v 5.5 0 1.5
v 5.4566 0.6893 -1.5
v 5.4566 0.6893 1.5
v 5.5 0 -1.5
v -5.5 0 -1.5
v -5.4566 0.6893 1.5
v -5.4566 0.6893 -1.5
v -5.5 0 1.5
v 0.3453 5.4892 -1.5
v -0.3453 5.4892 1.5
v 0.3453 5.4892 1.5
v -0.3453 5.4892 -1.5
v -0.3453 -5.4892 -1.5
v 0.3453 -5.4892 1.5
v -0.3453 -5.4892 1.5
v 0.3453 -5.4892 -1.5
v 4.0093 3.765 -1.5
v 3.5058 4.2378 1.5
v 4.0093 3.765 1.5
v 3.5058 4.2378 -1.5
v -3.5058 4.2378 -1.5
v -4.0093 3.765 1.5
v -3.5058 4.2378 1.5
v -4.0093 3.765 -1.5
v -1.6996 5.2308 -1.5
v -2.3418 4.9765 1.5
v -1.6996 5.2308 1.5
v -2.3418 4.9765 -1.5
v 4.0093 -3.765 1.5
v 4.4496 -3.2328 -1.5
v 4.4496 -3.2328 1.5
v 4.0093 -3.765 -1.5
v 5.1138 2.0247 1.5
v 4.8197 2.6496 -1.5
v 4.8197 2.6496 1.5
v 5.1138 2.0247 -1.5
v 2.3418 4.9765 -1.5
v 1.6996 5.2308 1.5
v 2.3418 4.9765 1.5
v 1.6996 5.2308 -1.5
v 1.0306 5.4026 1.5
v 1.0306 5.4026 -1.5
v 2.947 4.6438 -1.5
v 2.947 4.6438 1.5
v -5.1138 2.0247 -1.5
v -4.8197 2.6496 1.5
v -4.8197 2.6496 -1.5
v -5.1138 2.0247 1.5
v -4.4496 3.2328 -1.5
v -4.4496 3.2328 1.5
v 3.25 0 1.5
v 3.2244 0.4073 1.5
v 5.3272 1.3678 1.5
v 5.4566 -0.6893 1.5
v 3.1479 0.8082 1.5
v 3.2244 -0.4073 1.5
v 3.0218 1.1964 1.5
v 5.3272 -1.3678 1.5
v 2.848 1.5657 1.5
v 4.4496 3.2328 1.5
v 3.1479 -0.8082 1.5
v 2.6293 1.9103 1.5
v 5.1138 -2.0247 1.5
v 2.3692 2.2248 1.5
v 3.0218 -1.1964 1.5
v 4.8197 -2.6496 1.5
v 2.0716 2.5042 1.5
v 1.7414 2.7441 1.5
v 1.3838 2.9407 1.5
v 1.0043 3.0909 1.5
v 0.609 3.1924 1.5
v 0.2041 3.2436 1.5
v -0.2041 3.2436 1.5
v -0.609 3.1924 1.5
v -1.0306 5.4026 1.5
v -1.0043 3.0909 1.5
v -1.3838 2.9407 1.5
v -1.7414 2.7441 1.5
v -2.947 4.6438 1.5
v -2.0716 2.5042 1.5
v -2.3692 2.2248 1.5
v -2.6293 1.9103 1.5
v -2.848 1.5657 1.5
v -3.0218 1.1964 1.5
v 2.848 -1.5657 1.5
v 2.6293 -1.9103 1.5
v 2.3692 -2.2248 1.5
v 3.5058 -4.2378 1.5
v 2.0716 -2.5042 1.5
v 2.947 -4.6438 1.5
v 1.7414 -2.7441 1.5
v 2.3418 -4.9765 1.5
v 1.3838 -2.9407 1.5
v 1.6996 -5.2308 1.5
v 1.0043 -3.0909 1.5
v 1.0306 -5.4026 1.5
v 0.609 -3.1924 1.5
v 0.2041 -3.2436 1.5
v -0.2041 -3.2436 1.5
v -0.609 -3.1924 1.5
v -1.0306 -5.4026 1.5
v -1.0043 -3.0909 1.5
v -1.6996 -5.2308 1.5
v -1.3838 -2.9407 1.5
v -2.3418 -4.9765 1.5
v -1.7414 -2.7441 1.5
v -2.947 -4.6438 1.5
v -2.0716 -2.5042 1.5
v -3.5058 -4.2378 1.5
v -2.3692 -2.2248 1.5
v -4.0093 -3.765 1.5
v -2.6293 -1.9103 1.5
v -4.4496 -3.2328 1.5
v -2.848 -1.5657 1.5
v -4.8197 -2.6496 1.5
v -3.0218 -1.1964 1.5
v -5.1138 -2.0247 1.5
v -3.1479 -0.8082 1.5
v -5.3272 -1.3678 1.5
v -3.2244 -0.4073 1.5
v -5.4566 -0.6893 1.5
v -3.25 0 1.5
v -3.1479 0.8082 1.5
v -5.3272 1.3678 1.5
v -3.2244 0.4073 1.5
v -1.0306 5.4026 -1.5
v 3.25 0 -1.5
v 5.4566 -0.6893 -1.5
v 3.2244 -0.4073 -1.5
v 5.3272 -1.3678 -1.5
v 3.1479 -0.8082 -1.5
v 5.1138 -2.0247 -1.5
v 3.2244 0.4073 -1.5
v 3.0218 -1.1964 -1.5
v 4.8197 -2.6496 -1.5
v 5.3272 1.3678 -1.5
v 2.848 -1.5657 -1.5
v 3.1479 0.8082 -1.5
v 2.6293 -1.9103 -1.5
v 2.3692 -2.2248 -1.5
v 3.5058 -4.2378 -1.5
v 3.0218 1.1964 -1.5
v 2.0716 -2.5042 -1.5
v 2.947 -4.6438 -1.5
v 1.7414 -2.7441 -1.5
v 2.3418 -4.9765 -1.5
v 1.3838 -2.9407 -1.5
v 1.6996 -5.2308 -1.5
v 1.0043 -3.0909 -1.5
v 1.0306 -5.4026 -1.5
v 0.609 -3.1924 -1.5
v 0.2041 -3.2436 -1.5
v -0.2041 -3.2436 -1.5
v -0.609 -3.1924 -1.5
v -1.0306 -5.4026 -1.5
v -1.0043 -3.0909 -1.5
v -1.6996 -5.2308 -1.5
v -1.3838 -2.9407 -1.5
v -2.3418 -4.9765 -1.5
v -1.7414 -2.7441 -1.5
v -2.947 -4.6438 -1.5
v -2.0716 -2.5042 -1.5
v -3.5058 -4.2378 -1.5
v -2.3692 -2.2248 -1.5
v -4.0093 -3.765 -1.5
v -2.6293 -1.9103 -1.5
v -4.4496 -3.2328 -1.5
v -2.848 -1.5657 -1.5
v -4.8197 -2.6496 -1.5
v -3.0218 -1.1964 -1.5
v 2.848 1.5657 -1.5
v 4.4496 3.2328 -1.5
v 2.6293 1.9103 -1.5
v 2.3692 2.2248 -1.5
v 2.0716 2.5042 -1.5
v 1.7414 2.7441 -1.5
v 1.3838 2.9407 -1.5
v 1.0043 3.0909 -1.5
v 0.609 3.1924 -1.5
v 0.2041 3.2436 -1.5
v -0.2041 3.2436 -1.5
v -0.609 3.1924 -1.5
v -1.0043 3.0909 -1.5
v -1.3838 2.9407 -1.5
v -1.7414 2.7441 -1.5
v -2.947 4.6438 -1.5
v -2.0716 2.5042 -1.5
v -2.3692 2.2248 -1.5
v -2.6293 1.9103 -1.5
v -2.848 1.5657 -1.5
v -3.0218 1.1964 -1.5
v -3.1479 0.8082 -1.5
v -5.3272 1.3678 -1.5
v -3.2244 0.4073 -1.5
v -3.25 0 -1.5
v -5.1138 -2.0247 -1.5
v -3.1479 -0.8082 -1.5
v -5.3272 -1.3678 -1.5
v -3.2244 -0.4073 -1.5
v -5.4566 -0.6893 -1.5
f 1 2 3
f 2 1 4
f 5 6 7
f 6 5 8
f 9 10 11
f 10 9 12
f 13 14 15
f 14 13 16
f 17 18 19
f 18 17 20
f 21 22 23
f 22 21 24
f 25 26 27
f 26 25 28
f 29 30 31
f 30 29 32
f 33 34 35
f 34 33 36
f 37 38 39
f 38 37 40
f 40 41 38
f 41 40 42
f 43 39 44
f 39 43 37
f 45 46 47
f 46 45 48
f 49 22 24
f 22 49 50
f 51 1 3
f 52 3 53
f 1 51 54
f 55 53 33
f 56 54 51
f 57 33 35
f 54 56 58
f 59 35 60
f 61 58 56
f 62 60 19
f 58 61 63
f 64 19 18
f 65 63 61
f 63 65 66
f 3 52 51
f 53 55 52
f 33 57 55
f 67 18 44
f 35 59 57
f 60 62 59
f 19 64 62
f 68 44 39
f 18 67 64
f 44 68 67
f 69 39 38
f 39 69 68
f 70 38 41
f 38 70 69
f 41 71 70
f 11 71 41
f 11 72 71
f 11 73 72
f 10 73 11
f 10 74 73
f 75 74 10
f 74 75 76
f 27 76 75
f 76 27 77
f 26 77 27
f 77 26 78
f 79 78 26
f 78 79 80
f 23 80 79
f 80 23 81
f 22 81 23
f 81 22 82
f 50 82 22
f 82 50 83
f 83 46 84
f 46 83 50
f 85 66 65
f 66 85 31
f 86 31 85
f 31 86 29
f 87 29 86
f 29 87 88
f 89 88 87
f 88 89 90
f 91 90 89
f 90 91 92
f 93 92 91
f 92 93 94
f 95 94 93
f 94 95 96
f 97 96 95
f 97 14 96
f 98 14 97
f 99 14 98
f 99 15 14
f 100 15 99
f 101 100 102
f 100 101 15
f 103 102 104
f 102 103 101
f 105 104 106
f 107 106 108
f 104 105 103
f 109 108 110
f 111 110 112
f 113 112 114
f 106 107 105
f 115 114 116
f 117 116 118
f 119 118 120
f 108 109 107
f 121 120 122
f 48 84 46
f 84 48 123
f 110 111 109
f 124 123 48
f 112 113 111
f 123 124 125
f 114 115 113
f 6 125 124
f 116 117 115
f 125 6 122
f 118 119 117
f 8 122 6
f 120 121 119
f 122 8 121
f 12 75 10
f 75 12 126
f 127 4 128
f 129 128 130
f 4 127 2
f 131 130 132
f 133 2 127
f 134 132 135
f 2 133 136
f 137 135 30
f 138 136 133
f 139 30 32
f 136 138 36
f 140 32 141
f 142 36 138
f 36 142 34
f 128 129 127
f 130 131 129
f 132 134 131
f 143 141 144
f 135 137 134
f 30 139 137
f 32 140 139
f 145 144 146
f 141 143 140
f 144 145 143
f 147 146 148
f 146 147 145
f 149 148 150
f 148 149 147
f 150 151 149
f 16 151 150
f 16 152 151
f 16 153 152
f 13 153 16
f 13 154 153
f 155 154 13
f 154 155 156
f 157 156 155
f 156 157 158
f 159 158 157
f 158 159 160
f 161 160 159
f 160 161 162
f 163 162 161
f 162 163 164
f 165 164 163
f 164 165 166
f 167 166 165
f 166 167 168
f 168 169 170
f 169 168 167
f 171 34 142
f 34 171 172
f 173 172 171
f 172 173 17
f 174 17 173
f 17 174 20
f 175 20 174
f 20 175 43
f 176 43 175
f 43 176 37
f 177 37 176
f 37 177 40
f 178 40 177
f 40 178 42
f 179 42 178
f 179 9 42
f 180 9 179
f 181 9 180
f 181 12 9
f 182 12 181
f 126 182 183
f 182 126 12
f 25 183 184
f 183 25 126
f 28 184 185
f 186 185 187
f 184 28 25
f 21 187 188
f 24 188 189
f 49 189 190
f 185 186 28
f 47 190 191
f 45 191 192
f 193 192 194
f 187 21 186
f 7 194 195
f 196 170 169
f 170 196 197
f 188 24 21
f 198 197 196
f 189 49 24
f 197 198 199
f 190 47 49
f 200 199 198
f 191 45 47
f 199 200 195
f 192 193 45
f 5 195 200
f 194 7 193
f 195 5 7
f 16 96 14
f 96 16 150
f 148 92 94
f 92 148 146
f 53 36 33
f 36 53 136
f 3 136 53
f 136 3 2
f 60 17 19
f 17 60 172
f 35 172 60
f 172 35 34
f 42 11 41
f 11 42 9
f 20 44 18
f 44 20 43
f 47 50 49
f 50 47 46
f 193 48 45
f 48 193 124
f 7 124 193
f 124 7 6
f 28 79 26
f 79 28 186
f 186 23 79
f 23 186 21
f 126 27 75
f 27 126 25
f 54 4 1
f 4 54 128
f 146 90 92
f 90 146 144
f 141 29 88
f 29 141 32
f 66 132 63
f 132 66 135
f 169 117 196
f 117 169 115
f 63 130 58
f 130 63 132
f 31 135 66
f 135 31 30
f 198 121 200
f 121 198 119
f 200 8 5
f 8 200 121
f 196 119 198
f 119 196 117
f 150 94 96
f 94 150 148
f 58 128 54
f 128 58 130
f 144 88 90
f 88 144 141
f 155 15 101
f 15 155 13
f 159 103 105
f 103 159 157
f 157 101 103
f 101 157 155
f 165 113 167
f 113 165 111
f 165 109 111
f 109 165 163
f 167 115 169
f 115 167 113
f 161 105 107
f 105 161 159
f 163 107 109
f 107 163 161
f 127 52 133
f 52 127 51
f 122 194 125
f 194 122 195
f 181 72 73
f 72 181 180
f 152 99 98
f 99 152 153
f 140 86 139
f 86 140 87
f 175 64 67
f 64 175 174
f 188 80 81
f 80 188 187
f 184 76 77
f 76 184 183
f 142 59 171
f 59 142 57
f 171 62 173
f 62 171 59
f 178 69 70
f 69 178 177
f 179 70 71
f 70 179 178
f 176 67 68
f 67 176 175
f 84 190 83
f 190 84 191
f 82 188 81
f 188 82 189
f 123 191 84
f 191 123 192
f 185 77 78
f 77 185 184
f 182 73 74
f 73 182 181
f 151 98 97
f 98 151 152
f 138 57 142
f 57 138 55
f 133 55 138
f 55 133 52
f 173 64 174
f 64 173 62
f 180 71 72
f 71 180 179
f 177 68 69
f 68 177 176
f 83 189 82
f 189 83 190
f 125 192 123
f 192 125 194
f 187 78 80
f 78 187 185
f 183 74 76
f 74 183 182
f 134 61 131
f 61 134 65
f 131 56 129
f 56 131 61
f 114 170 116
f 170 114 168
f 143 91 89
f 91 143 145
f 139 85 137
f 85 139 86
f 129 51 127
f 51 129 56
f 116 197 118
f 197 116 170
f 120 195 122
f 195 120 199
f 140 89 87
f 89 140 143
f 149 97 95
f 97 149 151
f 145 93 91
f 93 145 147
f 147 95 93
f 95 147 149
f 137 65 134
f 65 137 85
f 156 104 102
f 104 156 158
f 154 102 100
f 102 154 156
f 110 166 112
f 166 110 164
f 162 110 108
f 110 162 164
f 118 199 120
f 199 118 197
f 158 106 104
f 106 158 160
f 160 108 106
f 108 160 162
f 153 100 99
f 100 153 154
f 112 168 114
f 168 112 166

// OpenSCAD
$fn = 50;


difference() {
	union() {
		translate(v = [0, 0, -1.5000000000]) {
			cylinder(h = 3, r = 5.5000000000);
		}
	}
	union() {
		translate(v = [0, 0, -100.0000000000]) {
			cylinder(h = 200, r = 3.2500000000);
		}
	}
}
